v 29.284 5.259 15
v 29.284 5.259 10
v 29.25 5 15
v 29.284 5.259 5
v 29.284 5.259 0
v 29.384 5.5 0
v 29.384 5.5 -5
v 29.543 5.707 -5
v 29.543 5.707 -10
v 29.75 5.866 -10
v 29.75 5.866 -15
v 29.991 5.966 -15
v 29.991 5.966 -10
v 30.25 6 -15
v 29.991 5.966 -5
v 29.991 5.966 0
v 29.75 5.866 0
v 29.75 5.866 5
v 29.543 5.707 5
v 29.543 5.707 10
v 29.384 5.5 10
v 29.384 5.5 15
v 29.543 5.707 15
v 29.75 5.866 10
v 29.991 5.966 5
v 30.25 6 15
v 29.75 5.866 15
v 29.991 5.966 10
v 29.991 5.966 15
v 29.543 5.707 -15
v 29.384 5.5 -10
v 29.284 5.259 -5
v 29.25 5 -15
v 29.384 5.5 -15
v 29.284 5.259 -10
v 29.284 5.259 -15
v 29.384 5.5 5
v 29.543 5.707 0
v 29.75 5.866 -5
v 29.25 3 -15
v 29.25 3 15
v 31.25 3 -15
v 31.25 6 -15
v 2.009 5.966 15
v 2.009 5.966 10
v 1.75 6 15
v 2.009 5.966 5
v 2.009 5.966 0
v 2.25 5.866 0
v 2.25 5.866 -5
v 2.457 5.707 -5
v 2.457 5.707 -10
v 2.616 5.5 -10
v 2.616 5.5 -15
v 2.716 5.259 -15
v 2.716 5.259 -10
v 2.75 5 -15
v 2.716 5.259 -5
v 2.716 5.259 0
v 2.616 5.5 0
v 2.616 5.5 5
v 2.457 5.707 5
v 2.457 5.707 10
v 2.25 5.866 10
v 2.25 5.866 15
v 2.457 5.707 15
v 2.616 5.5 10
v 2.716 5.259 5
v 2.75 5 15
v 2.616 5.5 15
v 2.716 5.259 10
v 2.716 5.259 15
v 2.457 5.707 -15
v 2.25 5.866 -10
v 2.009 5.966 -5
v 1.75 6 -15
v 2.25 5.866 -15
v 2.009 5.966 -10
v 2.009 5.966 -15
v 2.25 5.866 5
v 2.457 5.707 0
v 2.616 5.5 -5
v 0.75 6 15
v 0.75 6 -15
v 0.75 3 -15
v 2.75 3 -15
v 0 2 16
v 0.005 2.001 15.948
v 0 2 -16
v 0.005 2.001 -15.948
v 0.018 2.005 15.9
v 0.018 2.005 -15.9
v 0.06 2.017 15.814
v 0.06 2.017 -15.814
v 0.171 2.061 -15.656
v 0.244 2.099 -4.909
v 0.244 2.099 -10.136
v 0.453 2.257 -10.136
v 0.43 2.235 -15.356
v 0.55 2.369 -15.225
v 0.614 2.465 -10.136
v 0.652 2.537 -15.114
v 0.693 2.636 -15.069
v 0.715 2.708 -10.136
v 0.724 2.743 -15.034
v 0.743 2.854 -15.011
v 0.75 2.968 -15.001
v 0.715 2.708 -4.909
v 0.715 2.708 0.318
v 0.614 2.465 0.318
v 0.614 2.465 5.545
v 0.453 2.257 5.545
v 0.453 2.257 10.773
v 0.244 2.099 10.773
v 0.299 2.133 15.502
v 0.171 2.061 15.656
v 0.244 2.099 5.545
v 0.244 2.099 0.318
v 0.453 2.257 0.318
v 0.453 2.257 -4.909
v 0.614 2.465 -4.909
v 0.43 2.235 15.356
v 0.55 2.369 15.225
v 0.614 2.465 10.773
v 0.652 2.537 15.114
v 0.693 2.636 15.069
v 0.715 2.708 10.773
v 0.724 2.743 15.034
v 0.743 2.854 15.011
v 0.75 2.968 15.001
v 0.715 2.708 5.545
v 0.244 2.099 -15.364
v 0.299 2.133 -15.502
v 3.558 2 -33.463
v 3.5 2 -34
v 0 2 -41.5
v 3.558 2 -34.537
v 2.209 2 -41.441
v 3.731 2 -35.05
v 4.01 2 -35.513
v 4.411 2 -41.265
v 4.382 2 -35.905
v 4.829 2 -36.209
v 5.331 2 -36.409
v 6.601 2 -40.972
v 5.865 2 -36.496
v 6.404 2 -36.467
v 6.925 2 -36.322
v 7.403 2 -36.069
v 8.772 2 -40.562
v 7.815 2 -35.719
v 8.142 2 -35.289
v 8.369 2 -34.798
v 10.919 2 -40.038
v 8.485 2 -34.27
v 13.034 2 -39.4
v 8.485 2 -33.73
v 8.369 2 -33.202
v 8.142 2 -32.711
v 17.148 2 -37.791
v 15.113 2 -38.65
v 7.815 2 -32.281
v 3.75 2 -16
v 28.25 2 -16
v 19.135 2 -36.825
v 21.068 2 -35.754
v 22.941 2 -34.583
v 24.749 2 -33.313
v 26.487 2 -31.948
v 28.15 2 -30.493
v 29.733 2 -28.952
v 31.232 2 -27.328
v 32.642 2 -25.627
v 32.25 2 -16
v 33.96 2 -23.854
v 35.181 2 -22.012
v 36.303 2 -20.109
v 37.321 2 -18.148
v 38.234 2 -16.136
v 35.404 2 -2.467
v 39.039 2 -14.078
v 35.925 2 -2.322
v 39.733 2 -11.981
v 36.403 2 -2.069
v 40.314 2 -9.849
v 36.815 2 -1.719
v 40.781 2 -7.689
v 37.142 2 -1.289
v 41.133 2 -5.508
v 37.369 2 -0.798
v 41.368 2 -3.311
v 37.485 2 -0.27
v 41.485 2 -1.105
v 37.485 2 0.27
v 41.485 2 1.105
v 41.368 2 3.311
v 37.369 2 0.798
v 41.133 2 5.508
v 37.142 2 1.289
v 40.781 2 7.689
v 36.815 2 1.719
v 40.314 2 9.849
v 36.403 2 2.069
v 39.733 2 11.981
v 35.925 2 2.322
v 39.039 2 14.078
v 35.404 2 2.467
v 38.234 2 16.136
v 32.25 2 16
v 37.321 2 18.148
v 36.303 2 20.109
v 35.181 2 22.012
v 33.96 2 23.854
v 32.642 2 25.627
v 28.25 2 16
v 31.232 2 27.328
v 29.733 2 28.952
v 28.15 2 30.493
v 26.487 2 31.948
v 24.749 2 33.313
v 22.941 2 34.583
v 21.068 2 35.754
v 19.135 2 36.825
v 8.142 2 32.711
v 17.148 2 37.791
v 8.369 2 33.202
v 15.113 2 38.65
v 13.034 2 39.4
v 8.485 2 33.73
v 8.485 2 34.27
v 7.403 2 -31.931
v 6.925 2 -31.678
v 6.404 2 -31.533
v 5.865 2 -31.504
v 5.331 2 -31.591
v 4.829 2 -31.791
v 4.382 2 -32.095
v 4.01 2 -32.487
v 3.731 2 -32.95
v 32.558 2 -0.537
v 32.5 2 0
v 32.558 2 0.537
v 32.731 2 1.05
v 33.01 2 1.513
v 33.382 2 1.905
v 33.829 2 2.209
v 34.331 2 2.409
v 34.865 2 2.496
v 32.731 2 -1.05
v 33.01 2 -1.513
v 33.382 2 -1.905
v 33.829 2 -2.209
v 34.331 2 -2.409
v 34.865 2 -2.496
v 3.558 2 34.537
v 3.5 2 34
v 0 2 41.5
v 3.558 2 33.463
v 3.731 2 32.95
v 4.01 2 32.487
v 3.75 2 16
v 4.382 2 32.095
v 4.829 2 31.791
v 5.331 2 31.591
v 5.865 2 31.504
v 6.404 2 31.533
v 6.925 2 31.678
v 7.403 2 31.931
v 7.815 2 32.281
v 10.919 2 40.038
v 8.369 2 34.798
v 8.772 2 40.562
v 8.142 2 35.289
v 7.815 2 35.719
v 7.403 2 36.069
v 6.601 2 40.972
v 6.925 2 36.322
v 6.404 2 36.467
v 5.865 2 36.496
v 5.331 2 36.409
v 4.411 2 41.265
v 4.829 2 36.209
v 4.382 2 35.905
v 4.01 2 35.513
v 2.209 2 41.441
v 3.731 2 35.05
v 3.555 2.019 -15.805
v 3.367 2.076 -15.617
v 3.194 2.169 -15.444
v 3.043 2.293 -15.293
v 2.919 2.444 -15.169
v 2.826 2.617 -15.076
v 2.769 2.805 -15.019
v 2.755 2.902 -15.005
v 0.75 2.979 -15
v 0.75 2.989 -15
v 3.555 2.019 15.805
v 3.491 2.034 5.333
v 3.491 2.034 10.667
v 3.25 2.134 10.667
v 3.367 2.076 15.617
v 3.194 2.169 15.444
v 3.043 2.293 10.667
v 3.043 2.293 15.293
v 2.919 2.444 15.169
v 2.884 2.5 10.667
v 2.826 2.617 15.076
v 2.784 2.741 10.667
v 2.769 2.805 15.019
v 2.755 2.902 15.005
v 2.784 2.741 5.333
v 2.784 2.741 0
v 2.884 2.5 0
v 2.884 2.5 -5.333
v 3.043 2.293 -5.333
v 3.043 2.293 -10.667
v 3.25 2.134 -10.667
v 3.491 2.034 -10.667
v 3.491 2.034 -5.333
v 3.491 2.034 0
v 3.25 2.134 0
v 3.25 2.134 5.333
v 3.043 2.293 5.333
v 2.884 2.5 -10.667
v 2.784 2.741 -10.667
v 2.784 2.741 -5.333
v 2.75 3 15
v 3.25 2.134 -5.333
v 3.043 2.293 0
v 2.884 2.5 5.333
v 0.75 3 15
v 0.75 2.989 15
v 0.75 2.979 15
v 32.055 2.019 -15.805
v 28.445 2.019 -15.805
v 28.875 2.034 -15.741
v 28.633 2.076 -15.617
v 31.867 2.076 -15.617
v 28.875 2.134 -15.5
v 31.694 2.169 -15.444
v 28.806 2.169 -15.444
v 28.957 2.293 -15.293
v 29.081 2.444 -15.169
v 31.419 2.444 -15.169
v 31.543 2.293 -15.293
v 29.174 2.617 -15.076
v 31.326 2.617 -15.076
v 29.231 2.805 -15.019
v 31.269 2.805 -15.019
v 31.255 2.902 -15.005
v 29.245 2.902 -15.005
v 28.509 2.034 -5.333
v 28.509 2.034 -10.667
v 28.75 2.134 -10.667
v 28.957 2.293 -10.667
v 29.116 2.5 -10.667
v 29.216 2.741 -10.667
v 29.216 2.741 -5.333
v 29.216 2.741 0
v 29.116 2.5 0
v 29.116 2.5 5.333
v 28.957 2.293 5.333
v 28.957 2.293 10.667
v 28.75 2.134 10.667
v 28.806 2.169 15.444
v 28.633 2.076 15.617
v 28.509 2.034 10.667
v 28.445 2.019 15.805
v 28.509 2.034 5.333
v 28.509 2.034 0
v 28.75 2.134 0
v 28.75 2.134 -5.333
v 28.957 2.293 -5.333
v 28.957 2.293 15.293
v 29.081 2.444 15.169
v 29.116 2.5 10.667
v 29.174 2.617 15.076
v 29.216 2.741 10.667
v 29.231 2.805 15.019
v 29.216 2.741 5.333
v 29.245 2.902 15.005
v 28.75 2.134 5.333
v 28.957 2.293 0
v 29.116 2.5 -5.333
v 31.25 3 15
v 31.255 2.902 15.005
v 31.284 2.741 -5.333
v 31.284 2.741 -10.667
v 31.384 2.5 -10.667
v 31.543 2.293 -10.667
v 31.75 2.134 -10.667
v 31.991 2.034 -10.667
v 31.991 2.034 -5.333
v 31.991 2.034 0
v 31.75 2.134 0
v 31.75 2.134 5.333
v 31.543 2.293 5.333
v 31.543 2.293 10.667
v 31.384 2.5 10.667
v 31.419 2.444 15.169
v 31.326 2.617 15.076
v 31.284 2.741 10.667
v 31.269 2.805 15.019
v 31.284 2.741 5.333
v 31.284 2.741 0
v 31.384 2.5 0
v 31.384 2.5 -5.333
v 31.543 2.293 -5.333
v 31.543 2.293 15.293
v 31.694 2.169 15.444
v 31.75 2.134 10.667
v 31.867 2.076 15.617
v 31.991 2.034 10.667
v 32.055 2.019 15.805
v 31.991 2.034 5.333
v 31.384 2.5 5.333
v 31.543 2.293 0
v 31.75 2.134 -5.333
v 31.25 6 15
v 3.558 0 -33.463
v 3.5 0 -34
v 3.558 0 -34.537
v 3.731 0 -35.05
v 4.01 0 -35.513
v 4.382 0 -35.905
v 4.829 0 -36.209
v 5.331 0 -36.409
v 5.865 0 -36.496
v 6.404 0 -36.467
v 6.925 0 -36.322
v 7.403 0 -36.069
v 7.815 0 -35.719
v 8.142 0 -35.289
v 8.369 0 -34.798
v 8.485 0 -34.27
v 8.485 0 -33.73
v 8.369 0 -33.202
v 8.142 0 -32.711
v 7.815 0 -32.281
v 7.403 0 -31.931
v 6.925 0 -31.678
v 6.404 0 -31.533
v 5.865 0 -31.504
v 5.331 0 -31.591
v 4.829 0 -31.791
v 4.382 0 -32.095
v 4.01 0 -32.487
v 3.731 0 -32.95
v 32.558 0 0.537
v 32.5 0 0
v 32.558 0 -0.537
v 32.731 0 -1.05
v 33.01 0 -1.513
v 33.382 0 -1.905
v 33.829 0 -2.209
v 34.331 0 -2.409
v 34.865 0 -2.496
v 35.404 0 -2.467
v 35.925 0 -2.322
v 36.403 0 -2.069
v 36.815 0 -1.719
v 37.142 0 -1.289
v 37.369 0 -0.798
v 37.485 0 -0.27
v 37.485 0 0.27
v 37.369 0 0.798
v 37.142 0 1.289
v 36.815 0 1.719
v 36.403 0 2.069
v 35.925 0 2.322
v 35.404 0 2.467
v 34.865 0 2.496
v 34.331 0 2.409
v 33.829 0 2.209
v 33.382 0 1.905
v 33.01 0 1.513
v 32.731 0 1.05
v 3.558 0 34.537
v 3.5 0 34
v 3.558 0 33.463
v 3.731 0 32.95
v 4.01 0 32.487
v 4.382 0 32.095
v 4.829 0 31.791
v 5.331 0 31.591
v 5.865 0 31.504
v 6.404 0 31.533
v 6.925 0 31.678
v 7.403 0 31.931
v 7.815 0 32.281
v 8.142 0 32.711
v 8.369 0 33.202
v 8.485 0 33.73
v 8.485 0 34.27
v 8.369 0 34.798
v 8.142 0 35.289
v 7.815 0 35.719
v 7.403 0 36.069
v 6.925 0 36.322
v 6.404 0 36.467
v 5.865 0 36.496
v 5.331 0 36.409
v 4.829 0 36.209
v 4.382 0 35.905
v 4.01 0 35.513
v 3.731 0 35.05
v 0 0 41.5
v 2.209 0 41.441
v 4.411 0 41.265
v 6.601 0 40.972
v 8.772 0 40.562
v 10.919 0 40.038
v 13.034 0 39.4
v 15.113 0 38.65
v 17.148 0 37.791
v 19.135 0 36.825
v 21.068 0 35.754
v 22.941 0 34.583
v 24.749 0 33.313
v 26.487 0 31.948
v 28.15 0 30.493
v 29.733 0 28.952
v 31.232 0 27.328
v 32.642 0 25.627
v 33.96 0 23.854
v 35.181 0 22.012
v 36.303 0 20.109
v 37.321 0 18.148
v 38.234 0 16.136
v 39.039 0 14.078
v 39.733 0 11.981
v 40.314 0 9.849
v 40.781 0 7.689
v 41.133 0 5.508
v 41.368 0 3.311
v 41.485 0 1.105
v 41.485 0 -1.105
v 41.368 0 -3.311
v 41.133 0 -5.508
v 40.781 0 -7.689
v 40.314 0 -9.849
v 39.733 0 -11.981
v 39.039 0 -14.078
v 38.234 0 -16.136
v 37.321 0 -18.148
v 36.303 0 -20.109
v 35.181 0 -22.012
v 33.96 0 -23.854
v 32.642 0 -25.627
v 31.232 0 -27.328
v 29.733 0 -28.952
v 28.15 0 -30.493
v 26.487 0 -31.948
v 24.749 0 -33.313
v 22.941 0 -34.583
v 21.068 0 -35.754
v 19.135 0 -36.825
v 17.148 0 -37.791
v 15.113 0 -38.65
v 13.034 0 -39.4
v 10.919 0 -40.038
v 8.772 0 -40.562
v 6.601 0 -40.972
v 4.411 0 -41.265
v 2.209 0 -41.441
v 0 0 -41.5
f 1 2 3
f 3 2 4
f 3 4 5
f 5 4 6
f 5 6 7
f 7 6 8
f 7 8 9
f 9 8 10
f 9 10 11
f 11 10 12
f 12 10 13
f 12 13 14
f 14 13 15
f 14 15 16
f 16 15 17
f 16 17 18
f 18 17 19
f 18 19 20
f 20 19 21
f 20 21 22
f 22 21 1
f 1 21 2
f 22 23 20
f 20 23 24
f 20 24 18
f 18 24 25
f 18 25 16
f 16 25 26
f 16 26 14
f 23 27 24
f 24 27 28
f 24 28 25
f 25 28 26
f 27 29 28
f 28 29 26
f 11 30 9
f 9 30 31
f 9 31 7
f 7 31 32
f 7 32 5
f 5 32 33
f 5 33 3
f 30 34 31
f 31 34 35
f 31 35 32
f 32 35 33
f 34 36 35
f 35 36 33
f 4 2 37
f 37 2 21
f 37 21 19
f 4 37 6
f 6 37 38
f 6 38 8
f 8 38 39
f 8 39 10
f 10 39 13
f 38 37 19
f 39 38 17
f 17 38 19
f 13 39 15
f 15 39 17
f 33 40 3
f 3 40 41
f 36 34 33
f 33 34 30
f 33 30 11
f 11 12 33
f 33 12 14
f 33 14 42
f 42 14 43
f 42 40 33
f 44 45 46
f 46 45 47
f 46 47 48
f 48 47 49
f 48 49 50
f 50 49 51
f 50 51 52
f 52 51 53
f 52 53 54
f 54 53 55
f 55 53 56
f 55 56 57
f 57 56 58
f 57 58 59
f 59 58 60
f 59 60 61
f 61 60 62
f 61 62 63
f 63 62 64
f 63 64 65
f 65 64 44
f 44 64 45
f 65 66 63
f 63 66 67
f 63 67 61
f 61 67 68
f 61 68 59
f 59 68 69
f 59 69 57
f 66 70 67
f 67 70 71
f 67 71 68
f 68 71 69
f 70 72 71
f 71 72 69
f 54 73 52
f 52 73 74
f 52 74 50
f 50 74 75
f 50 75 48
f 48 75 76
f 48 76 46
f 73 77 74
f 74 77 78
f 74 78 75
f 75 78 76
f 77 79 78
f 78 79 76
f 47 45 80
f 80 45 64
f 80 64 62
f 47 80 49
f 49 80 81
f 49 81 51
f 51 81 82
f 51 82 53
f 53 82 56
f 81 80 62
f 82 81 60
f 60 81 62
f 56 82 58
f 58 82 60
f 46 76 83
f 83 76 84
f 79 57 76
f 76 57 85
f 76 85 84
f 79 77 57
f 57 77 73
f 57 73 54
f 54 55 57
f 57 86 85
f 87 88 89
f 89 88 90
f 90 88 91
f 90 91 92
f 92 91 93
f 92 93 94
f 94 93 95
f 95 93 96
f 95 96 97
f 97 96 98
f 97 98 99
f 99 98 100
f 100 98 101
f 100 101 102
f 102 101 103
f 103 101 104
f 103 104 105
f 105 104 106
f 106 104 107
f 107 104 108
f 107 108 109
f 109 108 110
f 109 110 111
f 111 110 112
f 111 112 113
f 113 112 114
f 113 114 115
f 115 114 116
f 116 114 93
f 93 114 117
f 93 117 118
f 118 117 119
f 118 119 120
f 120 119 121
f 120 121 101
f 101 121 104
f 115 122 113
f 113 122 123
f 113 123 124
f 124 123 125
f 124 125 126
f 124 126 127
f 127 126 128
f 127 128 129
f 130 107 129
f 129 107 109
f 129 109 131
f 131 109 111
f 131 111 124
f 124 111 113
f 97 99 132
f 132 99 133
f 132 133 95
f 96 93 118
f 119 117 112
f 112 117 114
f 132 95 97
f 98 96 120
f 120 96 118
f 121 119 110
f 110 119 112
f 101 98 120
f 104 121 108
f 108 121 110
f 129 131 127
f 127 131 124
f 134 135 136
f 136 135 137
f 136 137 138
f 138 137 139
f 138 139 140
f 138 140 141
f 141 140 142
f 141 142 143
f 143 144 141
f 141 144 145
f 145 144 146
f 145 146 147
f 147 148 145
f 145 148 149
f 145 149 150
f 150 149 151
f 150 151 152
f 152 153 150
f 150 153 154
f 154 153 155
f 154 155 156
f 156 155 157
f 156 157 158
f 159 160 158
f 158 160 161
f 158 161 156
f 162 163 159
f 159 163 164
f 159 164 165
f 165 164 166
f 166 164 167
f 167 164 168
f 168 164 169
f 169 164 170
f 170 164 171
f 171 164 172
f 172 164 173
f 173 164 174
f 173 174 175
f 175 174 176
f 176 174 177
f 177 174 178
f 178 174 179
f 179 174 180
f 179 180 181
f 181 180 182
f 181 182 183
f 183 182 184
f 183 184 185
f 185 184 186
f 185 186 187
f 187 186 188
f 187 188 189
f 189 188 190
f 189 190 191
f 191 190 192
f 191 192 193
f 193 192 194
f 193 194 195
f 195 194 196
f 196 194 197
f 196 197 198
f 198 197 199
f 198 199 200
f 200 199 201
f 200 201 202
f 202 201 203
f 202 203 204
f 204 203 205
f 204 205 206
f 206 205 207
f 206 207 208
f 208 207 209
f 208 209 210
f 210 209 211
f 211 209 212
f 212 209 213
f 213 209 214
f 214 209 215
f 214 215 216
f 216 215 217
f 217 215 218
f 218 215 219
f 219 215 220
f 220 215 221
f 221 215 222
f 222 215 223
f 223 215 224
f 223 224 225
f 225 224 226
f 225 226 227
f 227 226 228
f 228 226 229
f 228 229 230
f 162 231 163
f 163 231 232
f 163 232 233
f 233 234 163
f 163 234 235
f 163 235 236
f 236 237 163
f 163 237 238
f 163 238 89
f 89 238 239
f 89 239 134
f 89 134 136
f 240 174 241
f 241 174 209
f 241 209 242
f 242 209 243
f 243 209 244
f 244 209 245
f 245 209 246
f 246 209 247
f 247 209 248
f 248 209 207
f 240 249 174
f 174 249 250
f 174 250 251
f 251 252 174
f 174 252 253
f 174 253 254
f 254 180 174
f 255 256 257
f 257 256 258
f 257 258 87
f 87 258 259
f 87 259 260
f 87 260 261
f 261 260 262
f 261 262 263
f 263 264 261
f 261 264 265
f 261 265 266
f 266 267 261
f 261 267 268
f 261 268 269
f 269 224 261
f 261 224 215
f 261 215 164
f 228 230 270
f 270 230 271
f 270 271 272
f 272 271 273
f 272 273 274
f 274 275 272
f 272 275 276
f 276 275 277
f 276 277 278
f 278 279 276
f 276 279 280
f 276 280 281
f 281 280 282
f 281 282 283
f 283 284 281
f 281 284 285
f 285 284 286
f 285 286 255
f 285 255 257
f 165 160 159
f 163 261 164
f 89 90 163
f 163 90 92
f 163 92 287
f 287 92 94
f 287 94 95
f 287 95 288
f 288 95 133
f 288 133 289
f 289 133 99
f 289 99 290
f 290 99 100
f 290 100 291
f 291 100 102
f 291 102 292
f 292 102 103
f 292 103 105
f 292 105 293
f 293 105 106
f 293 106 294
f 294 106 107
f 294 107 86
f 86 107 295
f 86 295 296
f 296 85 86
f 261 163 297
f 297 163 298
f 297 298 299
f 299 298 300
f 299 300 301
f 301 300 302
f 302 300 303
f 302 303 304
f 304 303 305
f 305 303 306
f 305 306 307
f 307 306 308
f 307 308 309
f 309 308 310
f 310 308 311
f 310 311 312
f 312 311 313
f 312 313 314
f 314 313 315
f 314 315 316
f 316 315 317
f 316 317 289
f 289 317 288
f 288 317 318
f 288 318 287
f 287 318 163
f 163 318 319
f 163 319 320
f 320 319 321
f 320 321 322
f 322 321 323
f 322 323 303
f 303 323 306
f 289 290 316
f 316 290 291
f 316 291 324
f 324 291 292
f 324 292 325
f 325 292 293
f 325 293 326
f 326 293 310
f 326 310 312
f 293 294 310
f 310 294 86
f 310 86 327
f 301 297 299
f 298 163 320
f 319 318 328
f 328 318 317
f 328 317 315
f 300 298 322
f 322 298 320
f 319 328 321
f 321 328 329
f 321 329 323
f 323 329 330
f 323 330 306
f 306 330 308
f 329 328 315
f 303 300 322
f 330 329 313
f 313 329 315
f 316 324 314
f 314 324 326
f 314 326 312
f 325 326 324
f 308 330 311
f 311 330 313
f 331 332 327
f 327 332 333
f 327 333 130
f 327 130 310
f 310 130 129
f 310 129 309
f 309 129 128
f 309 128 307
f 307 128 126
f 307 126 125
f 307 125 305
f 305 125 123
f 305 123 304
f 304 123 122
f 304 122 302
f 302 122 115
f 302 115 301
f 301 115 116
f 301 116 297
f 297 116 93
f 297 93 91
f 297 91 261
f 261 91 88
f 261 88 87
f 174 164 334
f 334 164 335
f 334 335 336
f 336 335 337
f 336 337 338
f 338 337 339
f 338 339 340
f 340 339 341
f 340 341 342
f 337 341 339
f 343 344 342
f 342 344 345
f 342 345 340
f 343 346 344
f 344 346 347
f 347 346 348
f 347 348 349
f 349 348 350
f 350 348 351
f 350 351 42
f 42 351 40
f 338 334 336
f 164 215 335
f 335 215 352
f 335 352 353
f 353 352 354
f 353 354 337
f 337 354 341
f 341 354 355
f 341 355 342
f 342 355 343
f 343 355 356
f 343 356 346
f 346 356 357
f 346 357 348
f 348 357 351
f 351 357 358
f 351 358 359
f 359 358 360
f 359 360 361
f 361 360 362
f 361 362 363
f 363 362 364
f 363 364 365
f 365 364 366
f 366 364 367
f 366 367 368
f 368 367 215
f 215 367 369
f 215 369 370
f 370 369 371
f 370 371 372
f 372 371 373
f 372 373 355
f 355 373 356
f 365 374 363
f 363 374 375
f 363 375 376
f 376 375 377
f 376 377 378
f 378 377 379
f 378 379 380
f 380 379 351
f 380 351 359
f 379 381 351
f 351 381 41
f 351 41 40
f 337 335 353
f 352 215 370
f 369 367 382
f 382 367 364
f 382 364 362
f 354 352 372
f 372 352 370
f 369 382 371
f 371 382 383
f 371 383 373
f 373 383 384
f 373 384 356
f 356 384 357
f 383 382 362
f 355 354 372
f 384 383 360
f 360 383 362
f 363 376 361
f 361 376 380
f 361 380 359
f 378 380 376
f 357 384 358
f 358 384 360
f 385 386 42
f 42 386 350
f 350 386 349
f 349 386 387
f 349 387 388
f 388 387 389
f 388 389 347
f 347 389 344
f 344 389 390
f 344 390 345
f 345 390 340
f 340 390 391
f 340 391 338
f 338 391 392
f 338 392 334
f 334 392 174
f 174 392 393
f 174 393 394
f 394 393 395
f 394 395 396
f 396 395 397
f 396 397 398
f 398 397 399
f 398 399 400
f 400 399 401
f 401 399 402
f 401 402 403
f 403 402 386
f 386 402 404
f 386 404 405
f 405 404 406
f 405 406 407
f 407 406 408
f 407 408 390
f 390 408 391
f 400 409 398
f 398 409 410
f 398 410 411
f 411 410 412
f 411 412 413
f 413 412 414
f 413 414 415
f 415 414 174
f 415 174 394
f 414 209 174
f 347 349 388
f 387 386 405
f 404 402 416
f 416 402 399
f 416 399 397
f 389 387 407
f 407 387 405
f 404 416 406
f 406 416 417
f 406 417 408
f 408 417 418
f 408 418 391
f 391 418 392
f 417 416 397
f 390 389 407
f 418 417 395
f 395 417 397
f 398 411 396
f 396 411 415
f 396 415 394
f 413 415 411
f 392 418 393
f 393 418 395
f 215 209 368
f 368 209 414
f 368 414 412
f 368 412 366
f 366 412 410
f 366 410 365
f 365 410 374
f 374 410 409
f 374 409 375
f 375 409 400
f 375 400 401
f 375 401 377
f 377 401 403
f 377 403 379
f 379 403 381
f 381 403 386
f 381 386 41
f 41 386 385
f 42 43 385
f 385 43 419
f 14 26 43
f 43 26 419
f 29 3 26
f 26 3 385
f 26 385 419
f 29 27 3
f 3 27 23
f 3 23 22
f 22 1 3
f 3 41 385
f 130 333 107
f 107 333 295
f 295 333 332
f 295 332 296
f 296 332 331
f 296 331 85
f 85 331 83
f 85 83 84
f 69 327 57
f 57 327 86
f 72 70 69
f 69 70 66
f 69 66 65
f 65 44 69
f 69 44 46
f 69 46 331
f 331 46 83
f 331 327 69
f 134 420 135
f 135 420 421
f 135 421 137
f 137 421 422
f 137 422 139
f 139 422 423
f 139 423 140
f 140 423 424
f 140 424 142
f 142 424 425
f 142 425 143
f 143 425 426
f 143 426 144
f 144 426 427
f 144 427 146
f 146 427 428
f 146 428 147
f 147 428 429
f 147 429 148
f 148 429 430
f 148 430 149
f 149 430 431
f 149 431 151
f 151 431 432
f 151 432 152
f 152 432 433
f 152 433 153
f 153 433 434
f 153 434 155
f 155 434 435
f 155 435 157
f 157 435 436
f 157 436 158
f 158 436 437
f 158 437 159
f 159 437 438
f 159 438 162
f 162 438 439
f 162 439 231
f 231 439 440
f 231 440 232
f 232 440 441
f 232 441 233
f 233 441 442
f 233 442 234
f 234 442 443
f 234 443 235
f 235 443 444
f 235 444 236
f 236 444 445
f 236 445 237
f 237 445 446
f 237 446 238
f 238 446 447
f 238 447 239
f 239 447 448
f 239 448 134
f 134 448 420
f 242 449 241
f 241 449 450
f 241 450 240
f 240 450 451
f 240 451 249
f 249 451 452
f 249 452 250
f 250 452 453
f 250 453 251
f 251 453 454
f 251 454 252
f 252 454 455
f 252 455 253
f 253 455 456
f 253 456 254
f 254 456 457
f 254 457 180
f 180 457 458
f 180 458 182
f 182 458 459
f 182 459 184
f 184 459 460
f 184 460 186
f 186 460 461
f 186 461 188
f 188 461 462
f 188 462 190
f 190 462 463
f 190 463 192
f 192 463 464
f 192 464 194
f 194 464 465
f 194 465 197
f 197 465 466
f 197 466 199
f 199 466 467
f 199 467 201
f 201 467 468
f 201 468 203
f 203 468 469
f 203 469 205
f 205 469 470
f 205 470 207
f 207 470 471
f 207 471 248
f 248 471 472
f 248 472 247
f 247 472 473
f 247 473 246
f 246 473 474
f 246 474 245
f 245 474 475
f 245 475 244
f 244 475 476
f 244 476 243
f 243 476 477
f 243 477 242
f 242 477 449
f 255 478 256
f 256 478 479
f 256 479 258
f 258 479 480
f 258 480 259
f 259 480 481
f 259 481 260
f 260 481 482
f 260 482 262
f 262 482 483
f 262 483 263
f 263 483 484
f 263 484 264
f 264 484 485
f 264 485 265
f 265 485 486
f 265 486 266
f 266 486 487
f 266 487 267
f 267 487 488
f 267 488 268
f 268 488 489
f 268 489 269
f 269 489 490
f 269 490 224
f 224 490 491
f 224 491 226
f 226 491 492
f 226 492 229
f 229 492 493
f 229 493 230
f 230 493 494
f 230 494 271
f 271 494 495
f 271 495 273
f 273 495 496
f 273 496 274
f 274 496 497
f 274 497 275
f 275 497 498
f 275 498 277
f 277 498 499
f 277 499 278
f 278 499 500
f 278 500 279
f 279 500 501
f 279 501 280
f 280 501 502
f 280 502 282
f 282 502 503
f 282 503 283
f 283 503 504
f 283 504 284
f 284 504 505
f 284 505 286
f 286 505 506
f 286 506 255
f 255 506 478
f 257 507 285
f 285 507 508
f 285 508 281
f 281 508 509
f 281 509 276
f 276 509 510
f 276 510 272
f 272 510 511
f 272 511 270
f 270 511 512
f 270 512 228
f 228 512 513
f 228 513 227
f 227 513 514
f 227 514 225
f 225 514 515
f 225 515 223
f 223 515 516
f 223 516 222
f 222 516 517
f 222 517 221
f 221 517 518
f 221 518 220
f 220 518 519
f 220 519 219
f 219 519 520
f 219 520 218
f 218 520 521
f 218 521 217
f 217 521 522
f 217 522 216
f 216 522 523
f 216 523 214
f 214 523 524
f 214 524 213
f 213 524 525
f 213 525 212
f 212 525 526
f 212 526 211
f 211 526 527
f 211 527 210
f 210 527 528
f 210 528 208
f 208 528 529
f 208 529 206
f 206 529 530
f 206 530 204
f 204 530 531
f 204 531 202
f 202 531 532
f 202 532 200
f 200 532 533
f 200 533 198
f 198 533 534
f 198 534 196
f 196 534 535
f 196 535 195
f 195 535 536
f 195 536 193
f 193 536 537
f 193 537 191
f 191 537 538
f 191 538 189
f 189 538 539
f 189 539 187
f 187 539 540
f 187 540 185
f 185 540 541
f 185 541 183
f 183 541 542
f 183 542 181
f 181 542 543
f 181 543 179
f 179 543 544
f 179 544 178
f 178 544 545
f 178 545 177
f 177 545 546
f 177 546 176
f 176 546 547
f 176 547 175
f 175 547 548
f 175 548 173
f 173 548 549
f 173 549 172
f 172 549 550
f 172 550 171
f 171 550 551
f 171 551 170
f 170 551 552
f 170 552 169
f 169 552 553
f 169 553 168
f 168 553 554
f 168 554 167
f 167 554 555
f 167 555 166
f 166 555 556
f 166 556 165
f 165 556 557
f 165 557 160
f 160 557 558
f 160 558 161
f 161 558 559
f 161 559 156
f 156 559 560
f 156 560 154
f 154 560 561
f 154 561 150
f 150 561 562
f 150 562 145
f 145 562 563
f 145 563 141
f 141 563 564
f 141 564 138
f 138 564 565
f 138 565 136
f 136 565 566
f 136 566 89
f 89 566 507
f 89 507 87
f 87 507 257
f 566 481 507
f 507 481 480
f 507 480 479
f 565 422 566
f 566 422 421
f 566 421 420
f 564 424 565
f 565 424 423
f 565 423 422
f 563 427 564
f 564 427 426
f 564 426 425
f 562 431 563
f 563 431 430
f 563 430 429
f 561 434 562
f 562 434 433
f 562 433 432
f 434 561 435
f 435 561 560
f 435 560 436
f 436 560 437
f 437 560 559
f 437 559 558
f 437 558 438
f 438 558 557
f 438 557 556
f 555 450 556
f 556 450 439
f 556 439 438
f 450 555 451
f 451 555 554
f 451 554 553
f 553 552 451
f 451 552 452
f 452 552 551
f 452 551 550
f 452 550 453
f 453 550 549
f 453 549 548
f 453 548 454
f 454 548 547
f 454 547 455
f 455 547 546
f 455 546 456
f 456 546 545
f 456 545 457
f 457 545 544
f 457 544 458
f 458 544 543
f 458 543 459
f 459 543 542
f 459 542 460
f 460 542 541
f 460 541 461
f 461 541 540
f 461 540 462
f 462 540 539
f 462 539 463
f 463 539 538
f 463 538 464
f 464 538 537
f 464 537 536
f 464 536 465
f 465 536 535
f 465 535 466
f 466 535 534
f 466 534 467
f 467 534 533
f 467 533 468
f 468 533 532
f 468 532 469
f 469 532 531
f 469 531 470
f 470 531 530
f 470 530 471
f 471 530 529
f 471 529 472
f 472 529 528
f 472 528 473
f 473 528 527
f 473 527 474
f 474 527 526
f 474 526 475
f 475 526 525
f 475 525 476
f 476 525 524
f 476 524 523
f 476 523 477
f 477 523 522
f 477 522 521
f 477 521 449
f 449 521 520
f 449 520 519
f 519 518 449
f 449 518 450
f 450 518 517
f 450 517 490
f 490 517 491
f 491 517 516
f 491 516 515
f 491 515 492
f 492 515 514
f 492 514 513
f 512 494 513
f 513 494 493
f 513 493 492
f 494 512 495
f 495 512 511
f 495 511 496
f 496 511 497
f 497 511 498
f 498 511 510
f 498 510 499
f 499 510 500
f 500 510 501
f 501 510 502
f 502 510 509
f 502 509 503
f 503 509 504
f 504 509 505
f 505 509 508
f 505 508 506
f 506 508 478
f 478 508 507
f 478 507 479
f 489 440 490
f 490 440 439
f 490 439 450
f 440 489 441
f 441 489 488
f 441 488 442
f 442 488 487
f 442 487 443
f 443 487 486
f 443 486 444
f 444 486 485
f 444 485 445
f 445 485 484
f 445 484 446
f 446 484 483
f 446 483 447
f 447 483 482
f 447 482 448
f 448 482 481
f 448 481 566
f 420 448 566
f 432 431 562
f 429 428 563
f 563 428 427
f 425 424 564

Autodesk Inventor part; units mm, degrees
ref_plane "YZ Plane" through (0, 0, 0) normal (1, 0, 0) x (0, 1, 0)
ref_plane "XZ Plane" through (0, 0, 0) normal (0, 1, 0) x (-1, 0, 0)
ref_plane "XY Plane" through (0, 0, 0) normal (0, 0, 1) x (1, 0, 0)
sketch "Sketch1" plane through (0, 0, 0) normal (0, 1, 0) x (-1, 0, 0)
  circle A0 centre (0, 0) radius 41.5 construction
  line L0 (0, -41.5) -> (0, 41.5)
  arc A1 (0, 41.5) -> (0, -41.5) centre (0, 0) ccw
  circle A2 centre (-6, -34) radius 2.5
  circle A3 centre (-6, 34) radius 2.5
  line L1 (0, 0) -> (-41.5, 0) construction
  circle A4 centre (-35, 0) radius 2.5
  dimension "d0" = 83
  dimension "d1" = 83
  dimension "d2" = 5
  dimension "d3" = 6
  dimension "d4" = 34
  dimension "d5" = 34
  dimension "d6" = 35
extrude "Extrusion1" add sketch "Sketch1" along normal blind 2
sketch "Espacio9V" plane through (0, 2, 0) normal (0, 1, 0) x (1, 0, 0)
  line L0 (2.75, -24.25) -> (29.25, -24.25)
  line L1 (29.25, -24.25) -> (29.25, 24.25)
  line L2 (29.25, 24.25) -> (2.75, 24.25)
  line L3 (2.75, 24.25) -> (2.75, -24.25)
  line L4 (2.75, -24.25) -> (29.25, 24.25) construction
  line L5 (29.25, -24.25) -> (2.75, 24.25) construction
  line L6 (0, 0) -> (41.5, 0) construction
  arc A0 (0, -41.5) -> (0, 41.5) centre (0, 0) ccw construction
  point P0 (16, 0)
  dimension "d11" = 26.5
  dimension "d12" = 48.5
  dimension "d13" = 16
sketch "Sketch3" plane through (0, 0, 0) normal (0, 0, 1) x (1, 0, 0)
  line L0 (29.25, 2) -> (31.25, 2)
  line L1 (31.25, 2) -> (31.25, 6)
  line L2 (31.25, 6) -> (29.25, 6)
  line L3 (29.25, 6) -> (29.25, 2)
  line L4 (2.75, 2) -> (0.75, 2)
  line L5 (0.75, 2) -> (0.75, 6)
  line L6 (0.75, 6) -> (2.75, 6)
  line L7 (2.75, 6) -> (2.75, 2)
  point P0 (0, 0)
  point P1 (2.75, 2)
  dimension "d14" = 2
  dimension "d15" = 4
  dimension "d16" = 4
  dimension "d17" = 2
extrude "Extrusion2" add sketch "Sketch3" along normal mid plane 30
fillet "Fillet1" radius 1 8 edges at (30.25, 2, 15) (29.25, 2, 0) (30.25, 2, -15) (31.25, 2, 0) (2.75, 2, 0) (1.75, 2, 15) (1.75, 2, -15) (0.75, 2, 0)
fillet "Fillet2" radius 1 2 edges at (2.75, 6, 0) (29.25, 6, 0)
properties part number "_3DPrint"
